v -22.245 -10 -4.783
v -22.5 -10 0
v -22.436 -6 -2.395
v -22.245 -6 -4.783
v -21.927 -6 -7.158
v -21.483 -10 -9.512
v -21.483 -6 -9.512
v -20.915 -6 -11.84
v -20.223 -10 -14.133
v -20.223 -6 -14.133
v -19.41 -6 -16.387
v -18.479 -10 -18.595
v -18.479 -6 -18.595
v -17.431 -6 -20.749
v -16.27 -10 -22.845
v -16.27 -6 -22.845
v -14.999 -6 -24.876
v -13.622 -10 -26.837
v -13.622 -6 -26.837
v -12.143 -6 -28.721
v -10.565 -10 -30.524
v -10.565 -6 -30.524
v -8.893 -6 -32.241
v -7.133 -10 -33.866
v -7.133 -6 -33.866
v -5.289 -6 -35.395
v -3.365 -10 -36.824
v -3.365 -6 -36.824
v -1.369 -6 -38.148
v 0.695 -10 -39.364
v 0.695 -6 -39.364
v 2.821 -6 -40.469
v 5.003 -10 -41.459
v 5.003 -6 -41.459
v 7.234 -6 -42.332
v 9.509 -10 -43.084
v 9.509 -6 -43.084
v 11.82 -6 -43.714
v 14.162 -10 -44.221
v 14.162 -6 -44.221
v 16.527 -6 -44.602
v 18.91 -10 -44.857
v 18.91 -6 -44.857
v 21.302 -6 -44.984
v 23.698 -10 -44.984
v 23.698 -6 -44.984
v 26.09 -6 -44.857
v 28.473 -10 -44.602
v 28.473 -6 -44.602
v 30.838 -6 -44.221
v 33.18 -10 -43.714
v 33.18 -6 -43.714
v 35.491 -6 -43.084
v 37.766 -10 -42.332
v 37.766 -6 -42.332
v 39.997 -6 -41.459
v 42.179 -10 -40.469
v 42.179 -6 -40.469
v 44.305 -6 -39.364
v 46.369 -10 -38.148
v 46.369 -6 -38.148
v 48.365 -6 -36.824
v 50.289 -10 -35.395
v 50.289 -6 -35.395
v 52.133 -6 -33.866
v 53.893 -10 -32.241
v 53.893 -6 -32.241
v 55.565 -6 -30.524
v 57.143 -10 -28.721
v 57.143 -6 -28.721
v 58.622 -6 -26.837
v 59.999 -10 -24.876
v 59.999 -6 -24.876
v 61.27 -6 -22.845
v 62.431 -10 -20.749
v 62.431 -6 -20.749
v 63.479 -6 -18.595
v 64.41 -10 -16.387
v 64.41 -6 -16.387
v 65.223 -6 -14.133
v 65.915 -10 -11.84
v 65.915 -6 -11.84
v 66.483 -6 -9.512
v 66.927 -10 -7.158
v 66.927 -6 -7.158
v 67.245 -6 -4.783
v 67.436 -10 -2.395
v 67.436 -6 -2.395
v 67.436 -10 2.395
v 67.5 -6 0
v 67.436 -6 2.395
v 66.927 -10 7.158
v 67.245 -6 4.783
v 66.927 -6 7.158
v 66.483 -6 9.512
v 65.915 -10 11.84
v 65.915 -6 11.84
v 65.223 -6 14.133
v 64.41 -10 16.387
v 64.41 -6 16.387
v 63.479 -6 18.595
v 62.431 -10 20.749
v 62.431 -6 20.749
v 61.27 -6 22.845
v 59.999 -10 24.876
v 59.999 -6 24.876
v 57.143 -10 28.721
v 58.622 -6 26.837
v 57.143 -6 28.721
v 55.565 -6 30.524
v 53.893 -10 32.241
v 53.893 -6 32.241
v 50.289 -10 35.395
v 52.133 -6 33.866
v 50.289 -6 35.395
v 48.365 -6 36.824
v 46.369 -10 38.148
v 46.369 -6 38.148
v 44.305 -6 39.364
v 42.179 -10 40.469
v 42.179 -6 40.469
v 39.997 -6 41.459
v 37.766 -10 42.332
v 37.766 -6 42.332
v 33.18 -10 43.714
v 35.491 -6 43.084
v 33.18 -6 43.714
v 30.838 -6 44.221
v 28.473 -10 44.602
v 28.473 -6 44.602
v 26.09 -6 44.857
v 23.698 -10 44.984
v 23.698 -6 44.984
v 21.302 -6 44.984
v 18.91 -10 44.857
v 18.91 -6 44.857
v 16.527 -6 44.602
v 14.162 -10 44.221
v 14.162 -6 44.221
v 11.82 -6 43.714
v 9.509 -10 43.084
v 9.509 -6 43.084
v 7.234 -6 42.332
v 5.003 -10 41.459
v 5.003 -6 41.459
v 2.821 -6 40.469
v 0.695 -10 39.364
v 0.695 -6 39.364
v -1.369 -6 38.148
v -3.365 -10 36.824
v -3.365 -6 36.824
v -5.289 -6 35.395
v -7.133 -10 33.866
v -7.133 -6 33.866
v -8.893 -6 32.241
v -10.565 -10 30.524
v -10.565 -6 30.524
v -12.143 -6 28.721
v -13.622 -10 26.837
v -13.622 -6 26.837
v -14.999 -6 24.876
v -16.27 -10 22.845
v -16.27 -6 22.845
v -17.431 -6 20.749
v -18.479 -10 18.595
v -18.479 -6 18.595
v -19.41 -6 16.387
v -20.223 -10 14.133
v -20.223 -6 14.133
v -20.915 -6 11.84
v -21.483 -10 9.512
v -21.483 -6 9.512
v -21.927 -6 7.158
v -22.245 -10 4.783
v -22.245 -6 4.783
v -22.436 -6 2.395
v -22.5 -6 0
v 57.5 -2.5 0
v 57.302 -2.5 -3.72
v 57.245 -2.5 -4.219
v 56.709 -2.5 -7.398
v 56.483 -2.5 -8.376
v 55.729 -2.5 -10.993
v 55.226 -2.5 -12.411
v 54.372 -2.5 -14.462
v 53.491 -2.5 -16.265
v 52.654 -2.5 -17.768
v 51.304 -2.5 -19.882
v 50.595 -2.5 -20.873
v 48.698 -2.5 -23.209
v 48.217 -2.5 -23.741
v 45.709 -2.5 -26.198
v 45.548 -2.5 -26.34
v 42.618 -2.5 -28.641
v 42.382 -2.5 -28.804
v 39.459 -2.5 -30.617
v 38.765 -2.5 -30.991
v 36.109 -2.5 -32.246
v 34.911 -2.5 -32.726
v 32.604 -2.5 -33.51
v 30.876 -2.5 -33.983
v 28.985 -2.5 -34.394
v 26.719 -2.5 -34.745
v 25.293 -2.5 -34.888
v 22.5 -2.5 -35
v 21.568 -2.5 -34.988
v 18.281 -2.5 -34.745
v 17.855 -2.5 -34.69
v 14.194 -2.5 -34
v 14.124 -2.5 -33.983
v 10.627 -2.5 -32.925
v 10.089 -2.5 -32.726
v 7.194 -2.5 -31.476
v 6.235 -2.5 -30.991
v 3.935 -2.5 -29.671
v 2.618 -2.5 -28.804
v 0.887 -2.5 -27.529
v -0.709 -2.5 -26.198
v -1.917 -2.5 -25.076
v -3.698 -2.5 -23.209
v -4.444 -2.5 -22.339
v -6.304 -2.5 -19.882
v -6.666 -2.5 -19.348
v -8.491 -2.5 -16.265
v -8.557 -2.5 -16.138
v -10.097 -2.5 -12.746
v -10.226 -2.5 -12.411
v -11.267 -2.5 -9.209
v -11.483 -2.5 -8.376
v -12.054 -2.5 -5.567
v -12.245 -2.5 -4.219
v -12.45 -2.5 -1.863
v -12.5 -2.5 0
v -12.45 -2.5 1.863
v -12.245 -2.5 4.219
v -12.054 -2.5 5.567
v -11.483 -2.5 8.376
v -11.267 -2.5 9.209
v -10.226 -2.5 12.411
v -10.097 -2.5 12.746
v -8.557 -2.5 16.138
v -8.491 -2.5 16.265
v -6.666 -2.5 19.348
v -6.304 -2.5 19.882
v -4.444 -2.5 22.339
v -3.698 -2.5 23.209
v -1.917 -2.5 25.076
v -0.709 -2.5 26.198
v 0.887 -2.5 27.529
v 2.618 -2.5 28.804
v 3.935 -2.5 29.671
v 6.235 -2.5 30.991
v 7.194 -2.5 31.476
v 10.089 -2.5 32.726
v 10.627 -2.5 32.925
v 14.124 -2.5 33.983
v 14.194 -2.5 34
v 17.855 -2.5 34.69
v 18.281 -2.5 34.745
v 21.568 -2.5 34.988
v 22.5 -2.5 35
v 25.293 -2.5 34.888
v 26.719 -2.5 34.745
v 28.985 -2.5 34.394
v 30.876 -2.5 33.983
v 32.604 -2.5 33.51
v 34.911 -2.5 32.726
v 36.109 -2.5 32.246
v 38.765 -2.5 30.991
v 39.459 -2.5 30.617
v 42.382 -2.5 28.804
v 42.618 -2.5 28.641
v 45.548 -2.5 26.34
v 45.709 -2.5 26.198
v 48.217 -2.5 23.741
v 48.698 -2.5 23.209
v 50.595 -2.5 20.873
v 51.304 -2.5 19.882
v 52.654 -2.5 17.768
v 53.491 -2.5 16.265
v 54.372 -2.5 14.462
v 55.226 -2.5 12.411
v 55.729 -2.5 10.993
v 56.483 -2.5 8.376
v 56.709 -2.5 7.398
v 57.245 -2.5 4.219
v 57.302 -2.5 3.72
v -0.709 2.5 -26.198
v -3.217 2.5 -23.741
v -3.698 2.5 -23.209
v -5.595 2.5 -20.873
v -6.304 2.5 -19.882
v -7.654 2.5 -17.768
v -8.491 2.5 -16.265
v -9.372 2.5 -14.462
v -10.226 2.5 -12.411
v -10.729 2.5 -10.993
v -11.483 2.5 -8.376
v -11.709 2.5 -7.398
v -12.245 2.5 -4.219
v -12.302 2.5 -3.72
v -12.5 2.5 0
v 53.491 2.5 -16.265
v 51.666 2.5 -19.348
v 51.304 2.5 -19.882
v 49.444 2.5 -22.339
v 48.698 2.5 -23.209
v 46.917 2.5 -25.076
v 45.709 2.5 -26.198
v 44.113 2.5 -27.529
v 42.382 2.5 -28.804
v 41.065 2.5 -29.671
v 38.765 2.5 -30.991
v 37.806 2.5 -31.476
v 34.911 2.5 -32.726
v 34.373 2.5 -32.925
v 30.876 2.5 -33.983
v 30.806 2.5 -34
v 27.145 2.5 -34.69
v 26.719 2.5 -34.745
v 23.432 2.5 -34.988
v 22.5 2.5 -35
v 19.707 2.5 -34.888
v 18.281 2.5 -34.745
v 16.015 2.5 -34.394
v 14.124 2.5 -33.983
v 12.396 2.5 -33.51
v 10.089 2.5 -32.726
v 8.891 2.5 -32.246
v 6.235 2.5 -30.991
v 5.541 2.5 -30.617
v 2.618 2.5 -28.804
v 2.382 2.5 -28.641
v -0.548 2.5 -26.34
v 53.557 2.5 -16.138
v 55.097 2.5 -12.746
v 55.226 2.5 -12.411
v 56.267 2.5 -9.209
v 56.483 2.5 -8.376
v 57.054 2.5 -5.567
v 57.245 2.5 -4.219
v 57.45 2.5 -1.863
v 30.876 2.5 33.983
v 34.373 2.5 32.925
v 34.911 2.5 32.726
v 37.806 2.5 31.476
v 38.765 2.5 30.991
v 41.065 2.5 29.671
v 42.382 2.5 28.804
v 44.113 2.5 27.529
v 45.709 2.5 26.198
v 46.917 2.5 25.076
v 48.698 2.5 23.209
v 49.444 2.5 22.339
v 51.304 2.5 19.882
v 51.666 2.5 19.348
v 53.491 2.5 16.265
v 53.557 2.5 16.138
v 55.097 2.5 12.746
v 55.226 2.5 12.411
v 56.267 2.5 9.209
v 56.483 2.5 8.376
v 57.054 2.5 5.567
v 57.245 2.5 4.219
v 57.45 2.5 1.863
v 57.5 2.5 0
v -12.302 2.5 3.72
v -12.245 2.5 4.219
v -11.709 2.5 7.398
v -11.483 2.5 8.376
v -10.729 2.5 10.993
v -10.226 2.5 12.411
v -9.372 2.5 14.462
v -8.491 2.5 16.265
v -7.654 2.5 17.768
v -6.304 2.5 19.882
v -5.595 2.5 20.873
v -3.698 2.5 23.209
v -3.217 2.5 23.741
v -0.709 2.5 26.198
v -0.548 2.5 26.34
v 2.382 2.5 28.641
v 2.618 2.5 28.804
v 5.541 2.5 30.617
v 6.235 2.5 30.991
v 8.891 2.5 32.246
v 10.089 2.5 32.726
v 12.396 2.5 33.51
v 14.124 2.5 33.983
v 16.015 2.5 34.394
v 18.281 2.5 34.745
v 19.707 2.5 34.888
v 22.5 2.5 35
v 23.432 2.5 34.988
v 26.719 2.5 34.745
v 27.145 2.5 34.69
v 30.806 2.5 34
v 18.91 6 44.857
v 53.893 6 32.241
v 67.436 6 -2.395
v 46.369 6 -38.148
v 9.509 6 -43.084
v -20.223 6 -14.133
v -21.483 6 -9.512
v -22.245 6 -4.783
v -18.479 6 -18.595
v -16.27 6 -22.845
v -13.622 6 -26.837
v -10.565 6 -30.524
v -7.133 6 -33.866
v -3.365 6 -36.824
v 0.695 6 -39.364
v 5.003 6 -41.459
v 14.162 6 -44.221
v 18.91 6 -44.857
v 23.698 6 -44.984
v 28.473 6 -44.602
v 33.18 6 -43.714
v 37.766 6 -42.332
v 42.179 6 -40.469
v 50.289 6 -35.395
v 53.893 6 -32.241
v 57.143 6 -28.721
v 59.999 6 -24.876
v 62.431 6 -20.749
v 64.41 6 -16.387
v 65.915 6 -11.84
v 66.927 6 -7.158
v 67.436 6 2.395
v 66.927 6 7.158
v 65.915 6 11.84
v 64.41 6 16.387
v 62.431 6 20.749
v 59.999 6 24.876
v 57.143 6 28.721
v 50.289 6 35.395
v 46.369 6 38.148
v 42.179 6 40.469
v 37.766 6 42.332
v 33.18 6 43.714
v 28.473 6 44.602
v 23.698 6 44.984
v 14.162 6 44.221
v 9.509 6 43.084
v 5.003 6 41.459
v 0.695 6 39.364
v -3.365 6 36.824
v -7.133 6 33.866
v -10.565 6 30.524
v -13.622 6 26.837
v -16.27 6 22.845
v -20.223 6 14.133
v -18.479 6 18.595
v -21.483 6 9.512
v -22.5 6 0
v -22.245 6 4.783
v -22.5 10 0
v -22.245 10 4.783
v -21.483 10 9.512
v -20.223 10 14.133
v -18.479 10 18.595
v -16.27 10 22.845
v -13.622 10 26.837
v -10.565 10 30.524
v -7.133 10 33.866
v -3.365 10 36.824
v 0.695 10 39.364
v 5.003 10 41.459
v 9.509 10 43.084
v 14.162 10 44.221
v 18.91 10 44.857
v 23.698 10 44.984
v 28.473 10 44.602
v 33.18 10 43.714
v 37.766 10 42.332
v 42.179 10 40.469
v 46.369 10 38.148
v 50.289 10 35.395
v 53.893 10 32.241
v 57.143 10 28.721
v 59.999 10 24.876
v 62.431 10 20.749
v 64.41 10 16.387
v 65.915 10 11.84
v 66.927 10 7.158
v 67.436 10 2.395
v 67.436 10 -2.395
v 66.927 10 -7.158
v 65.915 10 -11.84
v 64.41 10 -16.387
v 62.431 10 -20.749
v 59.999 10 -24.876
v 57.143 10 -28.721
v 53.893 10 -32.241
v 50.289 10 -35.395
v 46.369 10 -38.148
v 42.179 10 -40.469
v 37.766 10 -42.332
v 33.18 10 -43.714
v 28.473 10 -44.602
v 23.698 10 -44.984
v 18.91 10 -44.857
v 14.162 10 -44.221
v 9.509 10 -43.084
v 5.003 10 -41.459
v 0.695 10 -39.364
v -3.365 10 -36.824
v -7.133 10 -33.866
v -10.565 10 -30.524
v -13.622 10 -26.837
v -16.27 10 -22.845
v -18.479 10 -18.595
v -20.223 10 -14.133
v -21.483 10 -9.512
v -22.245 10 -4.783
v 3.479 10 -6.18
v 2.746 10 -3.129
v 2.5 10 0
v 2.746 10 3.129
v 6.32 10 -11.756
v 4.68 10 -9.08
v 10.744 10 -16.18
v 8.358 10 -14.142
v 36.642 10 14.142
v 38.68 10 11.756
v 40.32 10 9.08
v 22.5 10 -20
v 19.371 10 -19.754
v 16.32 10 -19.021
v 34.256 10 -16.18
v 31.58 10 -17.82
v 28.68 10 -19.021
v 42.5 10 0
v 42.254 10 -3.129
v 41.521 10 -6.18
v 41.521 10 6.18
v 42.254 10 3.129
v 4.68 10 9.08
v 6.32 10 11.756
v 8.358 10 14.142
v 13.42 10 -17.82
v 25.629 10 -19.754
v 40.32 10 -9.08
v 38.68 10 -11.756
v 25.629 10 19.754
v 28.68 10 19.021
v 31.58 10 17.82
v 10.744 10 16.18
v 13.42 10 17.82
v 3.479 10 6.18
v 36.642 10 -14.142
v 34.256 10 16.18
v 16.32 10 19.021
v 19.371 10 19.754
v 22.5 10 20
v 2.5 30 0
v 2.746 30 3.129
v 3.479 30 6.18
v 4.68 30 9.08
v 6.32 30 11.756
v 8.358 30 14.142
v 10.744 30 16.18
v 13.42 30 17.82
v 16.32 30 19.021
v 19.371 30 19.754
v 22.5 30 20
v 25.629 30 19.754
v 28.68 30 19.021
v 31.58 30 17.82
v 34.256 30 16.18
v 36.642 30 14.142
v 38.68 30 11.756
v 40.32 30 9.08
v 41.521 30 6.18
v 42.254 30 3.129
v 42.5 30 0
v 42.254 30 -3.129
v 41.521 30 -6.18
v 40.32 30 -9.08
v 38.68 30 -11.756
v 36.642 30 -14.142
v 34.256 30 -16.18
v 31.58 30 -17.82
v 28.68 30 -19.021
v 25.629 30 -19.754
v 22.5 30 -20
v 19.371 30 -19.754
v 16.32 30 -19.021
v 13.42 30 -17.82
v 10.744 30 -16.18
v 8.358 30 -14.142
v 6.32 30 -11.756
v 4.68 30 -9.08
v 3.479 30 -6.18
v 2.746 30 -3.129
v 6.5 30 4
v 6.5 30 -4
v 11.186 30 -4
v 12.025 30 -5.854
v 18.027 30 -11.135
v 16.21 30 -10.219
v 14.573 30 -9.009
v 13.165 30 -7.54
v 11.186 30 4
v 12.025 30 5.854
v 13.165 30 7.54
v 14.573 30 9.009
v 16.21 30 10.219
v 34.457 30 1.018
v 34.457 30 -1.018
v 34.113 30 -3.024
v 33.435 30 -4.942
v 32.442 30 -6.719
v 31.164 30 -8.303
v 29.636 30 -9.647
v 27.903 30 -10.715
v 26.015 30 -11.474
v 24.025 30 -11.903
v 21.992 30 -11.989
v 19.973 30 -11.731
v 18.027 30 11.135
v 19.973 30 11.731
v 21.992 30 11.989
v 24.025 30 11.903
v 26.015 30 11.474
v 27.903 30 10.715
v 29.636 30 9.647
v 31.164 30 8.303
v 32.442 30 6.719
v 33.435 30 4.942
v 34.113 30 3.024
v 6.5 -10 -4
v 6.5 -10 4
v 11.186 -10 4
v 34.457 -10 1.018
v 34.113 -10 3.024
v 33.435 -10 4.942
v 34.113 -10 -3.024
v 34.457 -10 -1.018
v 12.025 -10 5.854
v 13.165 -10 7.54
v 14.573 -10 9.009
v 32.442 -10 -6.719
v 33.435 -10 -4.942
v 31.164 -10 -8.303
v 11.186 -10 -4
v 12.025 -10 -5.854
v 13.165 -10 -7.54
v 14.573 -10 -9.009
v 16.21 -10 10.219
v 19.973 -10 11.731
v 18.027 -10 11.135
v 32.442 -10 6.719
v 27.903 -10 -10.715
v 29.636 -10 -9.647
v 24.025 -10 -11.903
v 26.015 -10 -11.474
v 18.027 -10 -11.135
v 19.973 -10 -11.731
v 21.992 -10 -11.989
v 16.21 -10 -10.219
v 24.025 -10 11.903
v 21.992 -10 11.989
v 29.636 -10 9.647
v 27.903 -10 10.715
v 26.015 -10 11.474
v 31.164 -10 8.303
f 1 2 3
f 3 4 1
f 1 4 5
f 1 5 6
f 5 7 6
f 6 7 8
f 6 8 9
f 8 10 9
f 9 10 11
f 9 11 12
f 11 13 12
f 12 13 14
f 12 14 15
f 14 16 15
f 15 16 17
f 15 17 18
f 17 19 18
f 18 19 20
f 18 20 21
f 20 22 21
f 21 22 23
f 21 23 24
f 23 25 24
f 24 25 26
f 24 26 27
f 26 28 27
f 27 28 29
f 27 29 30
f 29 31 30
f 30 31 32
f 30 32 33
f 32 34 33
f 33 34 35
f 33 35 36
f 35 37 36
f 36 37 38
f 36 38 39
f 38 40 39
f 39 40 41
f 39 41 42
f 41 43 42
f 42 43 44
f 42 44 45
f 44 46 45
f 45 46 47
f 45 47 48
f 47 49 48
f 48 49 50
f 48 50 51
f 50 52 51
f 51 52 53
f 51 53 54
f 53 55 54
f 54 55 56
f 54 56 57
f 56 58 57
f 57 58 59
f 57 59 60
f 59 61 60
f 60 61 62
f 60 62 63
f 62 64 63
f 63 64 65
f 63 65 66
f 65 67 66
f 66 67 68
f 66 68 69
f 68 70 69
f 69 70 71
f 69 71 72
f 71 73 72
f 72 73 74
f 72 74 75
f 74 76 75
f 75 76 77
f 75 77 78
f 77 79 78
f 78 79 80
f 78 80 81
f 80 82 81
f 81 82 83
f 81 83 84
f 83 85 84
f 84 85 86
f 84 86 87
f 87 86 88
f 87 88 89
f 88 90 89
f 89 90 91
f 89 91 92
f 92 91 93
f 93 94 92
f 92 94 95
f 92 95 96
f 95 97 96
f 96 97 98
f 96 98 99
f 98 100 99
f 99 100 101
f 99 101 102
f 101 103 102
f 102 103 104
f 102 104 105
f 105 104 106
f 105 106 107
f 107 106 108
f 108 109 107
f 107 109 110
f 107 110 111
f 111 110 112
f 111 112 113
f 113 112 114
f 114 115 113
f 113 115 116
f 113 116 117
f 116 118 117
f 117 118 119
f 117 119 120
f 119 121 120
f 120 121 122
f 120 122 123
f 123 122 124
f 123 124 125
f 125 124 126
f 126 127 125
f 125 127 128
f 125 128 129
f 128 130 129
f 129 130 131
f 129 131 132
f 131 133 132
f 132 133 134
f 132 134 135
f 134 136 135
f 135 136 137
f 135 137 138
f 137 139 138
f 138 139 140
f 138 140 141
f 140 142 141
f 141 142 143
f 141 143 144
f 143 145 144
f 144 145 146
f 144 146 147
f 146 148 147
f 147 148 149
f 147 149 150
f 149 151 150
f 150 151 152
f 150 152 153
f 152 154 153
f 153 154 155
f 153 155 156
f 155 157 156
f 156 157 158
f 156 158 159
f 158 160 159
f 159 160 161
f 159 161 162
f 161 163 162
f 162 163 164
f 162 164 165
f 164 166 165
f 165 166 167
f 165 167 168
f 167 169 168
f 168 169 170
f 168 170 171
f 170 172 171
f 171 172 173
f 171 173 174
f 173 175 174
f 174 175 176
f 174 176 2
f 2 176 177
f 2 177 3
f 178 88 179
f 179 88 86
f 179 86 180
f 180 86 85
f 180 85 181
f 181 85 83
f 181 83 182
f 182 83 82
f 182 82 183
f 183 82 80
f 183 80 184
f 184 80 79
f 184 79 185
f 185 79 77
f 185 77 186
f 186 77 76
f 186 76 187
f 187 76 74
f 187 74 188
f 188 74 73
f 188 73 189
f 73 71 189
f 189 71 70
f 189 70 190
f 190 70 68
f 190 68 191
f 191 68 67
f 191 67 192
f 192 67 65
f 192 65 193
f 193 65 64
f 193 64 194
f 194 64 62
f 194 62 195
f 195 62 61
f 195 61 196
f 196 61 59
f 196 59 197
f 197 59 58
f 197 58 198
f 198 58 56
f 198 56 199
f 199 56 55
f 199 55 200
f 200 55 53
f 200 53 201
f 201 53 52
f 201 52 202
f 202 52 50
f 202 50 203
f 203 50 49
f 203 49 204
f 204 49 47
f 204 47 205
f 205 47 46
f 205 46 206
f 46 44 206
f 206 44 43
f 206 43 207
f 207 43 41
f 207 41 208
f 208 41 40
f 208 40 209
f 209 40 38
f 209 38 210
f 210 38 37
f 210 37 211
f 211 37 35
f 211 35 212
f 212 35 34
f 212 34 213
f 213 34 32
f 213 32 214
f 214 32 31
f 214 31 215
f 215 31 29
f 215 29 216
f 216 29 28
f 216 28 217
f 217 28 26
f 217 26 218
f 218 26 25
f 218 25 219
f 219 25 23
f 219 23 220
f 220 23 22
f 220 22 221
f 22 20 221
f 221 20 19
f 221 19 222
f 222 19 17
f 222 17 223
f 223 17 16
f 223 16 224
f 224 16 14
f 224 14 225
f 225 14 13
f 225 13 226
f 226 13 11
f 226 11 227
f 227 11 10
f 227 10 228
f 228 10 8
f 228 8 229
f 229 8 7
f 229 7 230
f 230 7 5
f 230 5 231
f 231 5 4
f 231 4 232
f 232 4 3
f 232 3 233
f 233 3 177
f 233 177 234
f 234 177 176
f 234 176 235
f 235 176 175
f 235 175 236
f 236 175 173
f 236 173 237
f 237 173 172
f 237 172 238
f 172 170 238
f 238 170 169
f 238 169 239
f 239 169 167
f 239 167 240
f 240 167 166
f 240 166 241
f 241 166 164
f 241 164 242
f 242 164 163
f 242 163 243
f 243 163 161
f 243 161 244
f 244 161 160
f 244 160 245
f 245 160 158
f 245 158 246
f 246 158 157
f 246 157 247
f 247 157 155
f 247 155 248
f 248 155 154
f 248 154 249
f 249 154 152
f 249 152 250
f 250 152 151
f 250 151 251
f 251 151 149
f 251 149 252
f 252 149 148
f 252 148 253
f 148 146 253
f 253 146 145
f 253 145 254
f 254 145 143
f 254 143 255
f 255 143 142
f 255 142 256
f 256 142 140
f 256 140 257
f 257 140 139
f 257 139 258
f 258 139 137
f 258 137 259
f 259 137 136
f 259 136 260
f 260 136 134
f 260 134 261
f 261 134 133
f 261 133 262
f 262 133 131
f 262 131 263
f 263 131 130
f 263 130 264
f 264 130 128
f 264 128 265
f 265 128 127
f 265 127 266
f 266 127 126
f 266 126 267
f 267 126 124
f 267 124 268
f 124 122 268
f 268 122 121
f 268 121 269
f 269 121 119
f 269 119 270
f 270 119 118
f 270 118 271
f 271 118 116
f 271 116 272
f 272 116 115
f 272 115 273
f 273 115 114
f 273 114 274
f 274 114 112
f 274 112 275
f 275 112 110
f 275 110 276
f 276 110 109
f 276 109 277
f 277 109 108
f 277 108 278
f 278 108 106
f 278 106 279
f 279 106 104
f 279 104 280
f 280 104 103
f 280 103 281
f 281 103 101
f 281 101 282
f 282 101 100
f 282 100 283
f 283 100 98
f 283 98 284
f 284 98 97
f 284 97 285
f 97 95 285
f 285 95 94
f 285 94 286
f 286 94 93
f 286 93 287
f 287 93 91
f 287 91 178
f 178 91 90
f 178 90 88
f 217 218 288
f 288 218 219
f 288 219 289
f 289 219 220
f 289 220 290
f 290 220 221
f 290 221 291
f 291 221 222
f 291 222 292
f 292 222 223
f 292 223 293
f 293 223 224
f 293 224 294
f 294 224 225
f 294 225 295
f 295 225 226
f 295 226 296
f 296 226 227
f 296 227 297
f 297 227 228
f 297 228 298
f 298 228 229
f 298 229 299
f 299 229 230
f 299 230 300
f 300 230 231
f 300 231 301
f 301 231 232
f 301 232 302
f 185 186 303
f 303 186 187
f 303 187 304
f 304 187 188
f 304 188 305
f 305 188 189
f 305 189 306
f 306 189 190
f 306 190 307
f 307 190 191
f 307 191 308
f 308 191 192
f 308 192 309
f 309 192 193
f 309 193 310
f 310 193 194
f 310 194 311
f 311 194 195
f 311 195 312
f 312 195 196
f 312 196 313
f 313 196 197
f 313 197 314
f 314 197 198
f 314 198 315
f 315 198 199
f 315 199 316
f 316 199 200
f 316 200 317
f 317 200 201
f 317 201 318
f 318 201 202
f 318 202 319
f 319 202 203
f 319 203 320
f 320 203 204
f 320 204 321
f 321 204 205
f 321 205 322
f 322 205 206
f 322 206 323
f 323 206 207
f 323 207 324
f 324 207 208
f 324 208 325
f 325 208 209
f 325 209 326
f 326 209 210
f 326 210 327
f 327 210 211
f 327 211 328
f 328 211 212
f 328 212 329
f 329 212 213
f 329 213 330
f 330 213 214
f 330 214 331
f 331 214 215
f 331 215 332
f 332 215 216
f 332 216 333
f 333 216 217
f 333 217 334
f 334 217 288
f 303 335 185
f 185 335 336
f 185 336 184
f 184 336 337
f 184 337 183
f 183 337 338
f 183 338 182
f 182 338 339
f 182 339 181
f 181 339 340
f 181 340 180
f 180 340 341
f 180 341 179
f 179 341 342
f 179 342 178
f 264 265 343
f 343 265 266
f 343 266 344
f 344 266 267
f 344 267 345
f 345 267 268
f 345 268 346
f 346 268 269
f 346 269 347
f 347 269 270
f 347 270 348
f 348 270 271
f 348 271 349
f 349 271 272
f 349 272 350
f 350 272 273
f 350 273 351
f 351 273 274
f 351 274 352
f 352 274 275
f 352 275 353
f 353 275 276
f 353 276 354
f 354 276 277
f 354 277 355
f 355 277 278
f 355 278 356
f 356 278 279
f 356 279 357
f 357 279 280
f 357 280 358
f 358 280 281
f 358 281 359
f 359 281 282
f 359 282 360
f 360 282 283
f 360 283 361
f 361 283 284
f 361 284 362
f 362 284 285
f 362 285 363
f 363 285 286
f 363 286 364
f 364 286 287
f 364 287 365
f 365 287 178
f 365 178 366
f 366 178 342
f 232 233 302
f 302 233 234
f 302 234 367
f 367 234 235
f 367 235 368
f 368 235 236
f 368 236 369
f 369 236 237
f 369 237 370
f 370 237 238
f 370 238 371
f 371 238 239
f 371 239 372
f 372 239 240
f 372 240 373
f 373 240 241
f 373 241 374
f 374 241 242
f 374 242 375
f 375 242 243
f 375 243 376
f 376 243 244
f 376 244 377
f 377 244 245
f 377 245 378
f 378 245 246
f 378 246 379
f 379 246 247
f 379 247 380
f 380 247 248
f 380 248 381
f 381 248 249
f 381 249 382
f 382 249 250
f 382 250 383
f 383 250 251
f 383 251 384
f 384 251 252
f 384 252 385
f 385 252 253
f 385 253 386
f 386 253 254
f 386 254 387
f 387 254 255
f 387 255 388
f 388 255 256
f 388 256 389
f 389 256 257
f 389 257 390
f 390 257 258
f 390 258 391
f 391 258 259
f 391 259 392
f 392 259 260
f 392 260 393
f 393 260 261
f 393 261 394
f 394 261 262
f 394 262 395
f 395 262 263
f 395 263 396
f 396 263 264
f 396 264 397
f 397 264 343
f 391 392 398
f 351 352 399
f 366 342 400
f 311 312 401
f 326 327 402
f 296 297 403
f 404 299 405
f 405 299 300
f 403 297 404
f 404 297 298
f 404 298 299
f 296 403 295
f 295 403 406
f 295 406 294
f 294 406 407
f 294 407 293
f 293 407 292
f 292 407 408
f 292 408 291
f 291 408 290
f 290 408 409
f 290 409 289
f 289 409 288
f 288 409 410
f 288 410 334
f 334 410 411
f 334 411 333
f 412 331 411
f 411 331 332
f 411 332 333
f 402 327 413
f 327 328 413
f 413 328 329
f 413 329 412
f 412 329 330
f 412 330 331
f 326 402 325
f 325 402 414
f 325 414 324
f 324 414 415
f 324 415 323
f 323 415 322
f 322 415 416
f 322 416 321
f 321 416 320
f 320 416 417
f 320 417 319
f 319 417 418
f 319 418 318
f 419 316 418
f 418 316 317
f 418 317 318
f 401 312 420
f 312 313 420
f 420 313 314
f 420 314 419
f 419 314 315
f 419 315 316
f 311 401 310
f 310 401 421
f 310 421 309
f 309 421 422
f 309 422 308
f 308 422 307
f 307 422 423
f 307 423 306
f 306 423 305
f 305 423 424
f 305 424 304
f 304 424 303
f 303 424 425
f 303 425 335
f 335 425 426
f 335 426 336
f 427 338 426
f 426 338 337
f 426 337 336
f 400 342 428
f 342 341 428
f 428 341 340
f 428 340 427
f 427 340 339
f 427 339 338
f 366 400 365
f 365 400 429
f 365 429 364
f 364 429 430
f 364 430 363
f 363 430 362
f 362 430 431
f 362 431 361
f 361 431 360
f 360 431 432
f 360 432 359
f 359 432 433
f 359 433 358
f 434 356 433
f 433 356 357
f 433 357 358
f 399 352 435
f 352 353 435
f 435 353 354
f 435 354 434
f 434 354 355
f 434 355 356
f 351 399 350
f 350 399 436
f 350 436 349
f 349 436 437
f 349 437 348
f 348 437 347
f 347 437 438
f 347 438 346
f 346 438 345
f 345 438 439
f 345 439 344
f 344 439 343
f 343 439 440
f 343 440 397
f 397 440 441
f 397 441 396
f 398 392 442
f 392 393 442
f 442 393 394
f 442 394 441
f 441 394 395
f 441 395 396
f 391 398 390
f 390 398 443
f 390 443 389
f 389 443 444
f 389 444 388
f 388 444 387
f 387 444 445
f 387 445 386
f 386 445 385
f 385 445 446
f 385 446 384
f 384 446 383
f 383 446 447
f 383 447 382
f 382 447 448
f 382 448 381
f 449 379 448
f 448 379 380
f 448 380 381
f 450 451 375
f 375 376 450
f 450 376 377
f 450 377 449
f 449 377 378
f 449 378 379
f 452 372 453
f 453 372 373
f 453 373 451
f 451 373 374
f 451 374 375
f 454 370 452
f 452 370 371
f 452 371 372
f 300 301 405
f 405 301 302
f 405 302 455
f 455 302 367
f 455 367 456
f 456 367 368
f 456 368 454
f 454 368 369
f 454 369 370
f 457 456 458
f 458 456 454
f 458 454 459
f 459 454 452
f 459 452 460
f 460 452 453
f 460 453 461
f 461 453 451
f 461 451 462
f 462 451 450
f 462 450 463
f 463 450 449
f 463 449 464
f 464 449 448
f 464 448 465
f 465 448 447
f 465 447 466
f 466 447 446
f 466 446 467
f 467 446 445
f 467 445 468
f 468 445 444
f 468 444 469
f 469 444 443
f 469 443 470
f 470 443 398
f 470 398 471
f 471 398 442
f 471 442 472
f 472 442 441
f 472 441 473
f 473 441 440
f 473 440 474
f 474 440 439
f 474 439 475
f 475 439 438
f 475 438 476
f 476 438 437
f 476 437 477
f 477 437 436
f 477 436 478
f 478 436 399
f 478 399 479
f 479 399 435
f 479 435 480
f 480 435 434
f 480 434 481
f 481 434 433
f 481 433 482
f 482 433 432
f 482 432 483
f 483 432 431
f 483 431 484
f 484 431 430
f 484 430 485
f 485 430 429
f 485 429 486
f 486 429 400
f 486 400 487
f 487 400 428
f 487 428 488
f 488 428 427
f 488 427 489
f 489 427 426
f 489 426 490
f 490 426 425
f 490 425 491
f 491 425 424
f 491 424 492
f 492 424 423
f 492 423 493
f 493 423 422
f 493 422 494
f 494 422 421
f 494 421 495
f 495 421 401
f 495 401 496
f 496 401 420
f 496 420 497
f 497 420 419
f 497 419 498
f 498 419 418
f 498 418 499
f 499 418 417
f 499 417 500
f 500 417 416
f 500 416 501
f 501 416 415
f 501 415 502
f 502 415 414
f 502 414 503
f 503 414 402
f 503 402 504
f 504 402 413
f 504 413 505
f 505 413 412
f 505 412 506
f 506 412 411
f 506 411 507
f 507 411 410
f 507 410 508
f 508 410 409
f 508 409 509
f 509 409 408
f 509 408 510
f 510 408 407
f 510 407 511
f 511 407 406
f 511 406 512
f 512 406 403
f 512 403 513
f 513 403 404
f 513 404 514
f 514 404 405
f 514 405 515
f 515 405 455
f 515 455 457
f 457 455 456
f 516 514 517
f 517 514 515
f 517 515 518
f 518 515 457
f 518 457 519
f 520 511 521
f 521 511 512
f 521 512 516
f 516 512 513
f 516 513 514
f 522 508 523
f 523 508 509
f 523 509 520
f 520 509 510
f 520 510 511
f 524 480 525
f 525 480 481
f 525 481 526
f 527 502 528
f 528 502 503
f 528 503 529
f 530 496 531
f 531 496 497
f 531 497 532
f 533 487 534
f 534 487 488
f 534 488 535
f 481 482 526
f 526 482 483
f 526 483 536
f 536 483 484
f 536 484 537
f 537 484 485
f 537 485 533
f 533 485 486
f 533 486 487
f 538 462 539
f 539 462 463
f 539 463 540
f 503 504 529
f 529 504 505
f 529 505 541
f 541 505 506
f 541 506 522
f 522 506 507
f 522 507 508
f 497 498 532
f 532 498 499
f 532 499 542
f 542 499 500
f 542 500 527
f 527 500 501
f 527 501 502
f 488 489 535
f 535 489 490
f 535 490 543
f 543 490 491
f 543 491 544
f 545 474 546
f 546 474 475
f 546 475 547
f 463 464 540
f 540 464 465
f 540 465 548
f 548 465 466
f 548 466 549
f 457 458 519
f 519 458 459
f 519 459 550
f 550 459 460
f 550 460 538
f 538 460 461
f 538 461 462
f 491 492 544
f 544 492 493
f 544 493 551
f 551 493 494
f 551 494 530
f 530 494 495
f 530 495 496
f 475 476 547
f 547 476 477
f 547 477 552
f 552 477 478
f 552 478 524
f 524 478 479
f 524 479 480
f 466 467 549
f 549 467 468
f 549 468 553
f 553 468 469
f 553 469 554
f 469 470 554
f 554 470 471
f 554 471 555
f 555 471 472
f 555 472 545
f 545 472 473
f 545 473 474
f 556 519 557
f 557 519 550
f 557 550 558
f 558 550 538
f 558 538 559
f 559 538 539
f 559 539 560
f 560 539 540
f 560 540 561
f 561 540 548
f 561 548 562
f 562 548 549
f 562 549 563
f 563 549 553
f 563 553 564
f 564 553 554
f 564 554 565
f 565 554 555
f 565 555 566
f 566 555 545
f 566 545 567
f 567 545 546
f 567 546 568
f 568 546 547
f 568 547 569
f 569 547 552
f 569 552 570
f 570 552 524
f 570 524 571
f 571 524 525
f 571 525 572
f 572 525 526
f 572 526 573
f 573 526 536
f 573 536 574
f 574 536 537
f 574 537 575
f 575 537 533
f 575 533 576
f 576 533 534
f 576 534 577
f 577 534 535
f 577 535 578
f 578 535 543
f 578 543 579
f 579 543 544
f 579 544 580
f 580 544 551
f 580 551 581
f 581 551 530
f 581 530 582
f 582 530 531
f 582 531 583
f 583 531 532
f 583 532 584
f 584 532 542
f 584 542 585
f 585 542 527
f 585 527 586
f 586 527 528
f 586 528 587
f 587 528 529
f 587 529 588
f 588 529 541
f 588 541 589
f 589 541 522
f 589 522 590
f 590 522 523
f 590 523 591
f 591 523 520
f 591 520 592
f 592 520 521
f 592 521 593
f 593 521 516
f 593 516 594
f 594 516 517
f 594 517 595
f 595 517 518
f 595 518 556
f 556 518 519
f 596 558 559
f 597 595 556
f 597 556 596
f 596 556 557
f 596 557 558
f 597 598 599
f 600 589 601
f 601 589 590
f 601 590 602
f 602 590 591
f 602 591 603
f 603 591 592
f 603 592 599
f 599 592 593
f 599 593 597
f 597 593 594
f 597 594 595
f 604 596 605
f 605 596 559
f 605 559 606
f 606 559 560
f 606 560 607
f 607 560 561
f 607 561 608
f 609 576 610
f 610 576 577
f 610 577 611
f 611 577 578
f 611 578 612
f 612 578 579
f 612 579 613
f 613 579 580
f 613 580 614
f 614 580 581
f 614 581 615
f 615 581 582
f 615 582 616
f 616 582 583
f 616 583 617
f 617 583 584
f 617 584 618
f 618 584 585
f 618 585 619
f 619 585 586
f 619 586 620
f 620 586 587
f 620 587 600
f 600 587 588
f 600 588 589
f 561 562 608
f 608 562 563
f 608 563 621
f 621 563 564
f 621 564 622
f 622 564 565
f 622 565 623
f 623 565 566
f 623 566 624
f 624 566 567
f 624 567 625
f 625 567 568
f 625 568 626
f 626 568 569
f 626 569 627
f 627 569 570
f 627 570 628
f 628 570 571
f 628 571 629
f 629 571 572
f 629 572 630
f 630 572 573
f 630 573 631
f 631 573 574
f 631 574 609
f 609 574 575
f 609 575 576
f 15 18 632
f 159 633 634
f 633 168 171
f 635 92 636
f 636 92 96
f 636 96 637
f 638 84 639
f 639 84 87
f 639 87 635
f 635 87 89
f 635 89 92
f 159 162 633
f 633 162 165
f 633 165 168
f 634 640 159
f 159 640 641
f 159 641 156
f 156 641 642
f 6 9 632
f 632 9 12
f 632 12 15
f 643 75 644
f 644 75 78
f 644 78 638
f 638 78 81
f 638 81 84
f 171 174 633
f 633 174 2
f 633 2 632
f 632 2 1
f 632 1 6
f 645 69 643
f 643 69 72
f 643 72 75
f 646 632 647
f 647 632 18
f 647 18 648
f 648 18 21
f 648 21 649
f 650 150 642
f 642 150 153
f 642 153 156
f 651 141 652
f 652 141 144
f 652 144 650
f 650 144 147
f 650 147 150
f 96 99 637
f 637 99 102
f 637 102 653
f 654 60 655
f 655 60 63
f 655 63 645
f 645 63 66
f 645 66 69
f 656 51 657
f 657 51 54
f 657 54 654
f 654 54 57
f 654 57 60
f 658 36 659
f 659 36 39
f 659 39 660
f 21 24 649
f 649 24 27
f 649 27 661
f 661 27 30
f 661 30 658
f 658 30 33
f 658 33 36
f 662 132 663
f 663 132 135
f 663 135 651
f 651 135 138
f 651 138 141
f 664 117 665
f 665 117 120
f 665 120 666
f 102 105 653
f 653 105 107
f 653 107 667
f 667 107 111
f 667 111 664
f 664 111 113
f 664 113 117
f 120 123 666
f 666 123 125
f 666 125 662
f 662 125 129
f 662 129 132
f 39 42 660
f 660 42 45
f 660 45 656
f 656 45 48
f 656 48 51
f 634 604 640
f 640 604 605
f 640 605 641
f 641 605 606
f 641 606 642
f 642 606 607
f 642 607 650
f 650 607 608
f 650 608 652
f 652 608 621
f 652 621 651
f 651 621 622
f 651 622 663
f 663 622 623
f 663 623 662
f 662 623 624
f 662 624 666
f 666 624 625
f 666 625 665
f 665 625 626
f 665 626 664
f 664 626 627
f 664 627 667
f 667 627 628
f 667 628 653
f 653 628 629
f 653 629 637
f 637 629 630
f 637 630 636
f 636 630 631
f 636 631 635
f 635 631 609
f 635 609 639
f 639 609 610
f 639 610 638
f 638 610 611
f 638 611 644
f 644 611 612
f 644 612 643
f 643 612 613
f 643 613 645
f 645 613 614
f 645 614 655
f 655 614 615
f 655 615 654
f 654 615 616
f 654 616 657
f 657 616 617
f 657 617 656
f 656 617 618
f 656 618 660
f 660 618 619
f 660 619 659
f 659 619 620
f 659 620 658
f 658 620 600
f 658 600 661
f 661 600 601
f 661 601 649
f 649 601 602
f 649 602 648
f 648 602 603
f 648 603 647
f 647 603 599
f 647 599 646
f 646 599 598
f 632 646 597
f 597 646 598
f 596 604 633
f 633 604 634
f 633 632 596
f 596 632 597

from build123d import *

# Parameters (mm, degrees)
SKETCH2_R          = 12
CUT_EXTRUDE1_DEPTH = 91.450262576
SKETCH3_W          = 16
SKETCH3_H          = 8
CUT_EXTRUDE2_DEPTH = 91.450262576


with BuildPart() as part:
    # Sketch1 → Revolve1 (revolve)
    with BuildSketch(Plane.XY):
        Polygon((-12.5, 2.5), (-12.5, -2.5), (-22.5, -6), (-22.5, -10), (22.5, -10), (22.5, 10), (22.5, 30), (2.5, 30), (2.5, 10), (-22.5, 10), (-22.5, 6), align=None)
    revolve(axis=Axis((22.5, 43.956272641, 0), (0, -1, 0)))

    # Sketch2 → Cut-Extrude1 (cut, through all)
    with BuildSketch(Plane(origin=(0, 30, 0), x_dir=(1, 0, 0), z_dir=(0, 1, 0))):
        with Locations(Location((22.5, 0, 0), (0, 0, 180))):
            Circle(SKETCH2_R)
    extrude(amount=-CUT_EXTRUDE1_DEPTH, mode=Mode.SUBTRACT)

    # Sketch3 → Cut-Extrude2 (cut, through all)
    with BuildSketch(Plane(origin=(0, 30, 0), x_dir=(1, 0, 0), z_dir=(0, 1, 0))):
        with Locations((14.5, 0)):
            Rectangle(SKETCH3_W, SKETCH3_H)
    extrude(amount=-CUT_EXTRUDE2_DEPTH, mode=Mode.SUBTRACT)


solid = part.part
